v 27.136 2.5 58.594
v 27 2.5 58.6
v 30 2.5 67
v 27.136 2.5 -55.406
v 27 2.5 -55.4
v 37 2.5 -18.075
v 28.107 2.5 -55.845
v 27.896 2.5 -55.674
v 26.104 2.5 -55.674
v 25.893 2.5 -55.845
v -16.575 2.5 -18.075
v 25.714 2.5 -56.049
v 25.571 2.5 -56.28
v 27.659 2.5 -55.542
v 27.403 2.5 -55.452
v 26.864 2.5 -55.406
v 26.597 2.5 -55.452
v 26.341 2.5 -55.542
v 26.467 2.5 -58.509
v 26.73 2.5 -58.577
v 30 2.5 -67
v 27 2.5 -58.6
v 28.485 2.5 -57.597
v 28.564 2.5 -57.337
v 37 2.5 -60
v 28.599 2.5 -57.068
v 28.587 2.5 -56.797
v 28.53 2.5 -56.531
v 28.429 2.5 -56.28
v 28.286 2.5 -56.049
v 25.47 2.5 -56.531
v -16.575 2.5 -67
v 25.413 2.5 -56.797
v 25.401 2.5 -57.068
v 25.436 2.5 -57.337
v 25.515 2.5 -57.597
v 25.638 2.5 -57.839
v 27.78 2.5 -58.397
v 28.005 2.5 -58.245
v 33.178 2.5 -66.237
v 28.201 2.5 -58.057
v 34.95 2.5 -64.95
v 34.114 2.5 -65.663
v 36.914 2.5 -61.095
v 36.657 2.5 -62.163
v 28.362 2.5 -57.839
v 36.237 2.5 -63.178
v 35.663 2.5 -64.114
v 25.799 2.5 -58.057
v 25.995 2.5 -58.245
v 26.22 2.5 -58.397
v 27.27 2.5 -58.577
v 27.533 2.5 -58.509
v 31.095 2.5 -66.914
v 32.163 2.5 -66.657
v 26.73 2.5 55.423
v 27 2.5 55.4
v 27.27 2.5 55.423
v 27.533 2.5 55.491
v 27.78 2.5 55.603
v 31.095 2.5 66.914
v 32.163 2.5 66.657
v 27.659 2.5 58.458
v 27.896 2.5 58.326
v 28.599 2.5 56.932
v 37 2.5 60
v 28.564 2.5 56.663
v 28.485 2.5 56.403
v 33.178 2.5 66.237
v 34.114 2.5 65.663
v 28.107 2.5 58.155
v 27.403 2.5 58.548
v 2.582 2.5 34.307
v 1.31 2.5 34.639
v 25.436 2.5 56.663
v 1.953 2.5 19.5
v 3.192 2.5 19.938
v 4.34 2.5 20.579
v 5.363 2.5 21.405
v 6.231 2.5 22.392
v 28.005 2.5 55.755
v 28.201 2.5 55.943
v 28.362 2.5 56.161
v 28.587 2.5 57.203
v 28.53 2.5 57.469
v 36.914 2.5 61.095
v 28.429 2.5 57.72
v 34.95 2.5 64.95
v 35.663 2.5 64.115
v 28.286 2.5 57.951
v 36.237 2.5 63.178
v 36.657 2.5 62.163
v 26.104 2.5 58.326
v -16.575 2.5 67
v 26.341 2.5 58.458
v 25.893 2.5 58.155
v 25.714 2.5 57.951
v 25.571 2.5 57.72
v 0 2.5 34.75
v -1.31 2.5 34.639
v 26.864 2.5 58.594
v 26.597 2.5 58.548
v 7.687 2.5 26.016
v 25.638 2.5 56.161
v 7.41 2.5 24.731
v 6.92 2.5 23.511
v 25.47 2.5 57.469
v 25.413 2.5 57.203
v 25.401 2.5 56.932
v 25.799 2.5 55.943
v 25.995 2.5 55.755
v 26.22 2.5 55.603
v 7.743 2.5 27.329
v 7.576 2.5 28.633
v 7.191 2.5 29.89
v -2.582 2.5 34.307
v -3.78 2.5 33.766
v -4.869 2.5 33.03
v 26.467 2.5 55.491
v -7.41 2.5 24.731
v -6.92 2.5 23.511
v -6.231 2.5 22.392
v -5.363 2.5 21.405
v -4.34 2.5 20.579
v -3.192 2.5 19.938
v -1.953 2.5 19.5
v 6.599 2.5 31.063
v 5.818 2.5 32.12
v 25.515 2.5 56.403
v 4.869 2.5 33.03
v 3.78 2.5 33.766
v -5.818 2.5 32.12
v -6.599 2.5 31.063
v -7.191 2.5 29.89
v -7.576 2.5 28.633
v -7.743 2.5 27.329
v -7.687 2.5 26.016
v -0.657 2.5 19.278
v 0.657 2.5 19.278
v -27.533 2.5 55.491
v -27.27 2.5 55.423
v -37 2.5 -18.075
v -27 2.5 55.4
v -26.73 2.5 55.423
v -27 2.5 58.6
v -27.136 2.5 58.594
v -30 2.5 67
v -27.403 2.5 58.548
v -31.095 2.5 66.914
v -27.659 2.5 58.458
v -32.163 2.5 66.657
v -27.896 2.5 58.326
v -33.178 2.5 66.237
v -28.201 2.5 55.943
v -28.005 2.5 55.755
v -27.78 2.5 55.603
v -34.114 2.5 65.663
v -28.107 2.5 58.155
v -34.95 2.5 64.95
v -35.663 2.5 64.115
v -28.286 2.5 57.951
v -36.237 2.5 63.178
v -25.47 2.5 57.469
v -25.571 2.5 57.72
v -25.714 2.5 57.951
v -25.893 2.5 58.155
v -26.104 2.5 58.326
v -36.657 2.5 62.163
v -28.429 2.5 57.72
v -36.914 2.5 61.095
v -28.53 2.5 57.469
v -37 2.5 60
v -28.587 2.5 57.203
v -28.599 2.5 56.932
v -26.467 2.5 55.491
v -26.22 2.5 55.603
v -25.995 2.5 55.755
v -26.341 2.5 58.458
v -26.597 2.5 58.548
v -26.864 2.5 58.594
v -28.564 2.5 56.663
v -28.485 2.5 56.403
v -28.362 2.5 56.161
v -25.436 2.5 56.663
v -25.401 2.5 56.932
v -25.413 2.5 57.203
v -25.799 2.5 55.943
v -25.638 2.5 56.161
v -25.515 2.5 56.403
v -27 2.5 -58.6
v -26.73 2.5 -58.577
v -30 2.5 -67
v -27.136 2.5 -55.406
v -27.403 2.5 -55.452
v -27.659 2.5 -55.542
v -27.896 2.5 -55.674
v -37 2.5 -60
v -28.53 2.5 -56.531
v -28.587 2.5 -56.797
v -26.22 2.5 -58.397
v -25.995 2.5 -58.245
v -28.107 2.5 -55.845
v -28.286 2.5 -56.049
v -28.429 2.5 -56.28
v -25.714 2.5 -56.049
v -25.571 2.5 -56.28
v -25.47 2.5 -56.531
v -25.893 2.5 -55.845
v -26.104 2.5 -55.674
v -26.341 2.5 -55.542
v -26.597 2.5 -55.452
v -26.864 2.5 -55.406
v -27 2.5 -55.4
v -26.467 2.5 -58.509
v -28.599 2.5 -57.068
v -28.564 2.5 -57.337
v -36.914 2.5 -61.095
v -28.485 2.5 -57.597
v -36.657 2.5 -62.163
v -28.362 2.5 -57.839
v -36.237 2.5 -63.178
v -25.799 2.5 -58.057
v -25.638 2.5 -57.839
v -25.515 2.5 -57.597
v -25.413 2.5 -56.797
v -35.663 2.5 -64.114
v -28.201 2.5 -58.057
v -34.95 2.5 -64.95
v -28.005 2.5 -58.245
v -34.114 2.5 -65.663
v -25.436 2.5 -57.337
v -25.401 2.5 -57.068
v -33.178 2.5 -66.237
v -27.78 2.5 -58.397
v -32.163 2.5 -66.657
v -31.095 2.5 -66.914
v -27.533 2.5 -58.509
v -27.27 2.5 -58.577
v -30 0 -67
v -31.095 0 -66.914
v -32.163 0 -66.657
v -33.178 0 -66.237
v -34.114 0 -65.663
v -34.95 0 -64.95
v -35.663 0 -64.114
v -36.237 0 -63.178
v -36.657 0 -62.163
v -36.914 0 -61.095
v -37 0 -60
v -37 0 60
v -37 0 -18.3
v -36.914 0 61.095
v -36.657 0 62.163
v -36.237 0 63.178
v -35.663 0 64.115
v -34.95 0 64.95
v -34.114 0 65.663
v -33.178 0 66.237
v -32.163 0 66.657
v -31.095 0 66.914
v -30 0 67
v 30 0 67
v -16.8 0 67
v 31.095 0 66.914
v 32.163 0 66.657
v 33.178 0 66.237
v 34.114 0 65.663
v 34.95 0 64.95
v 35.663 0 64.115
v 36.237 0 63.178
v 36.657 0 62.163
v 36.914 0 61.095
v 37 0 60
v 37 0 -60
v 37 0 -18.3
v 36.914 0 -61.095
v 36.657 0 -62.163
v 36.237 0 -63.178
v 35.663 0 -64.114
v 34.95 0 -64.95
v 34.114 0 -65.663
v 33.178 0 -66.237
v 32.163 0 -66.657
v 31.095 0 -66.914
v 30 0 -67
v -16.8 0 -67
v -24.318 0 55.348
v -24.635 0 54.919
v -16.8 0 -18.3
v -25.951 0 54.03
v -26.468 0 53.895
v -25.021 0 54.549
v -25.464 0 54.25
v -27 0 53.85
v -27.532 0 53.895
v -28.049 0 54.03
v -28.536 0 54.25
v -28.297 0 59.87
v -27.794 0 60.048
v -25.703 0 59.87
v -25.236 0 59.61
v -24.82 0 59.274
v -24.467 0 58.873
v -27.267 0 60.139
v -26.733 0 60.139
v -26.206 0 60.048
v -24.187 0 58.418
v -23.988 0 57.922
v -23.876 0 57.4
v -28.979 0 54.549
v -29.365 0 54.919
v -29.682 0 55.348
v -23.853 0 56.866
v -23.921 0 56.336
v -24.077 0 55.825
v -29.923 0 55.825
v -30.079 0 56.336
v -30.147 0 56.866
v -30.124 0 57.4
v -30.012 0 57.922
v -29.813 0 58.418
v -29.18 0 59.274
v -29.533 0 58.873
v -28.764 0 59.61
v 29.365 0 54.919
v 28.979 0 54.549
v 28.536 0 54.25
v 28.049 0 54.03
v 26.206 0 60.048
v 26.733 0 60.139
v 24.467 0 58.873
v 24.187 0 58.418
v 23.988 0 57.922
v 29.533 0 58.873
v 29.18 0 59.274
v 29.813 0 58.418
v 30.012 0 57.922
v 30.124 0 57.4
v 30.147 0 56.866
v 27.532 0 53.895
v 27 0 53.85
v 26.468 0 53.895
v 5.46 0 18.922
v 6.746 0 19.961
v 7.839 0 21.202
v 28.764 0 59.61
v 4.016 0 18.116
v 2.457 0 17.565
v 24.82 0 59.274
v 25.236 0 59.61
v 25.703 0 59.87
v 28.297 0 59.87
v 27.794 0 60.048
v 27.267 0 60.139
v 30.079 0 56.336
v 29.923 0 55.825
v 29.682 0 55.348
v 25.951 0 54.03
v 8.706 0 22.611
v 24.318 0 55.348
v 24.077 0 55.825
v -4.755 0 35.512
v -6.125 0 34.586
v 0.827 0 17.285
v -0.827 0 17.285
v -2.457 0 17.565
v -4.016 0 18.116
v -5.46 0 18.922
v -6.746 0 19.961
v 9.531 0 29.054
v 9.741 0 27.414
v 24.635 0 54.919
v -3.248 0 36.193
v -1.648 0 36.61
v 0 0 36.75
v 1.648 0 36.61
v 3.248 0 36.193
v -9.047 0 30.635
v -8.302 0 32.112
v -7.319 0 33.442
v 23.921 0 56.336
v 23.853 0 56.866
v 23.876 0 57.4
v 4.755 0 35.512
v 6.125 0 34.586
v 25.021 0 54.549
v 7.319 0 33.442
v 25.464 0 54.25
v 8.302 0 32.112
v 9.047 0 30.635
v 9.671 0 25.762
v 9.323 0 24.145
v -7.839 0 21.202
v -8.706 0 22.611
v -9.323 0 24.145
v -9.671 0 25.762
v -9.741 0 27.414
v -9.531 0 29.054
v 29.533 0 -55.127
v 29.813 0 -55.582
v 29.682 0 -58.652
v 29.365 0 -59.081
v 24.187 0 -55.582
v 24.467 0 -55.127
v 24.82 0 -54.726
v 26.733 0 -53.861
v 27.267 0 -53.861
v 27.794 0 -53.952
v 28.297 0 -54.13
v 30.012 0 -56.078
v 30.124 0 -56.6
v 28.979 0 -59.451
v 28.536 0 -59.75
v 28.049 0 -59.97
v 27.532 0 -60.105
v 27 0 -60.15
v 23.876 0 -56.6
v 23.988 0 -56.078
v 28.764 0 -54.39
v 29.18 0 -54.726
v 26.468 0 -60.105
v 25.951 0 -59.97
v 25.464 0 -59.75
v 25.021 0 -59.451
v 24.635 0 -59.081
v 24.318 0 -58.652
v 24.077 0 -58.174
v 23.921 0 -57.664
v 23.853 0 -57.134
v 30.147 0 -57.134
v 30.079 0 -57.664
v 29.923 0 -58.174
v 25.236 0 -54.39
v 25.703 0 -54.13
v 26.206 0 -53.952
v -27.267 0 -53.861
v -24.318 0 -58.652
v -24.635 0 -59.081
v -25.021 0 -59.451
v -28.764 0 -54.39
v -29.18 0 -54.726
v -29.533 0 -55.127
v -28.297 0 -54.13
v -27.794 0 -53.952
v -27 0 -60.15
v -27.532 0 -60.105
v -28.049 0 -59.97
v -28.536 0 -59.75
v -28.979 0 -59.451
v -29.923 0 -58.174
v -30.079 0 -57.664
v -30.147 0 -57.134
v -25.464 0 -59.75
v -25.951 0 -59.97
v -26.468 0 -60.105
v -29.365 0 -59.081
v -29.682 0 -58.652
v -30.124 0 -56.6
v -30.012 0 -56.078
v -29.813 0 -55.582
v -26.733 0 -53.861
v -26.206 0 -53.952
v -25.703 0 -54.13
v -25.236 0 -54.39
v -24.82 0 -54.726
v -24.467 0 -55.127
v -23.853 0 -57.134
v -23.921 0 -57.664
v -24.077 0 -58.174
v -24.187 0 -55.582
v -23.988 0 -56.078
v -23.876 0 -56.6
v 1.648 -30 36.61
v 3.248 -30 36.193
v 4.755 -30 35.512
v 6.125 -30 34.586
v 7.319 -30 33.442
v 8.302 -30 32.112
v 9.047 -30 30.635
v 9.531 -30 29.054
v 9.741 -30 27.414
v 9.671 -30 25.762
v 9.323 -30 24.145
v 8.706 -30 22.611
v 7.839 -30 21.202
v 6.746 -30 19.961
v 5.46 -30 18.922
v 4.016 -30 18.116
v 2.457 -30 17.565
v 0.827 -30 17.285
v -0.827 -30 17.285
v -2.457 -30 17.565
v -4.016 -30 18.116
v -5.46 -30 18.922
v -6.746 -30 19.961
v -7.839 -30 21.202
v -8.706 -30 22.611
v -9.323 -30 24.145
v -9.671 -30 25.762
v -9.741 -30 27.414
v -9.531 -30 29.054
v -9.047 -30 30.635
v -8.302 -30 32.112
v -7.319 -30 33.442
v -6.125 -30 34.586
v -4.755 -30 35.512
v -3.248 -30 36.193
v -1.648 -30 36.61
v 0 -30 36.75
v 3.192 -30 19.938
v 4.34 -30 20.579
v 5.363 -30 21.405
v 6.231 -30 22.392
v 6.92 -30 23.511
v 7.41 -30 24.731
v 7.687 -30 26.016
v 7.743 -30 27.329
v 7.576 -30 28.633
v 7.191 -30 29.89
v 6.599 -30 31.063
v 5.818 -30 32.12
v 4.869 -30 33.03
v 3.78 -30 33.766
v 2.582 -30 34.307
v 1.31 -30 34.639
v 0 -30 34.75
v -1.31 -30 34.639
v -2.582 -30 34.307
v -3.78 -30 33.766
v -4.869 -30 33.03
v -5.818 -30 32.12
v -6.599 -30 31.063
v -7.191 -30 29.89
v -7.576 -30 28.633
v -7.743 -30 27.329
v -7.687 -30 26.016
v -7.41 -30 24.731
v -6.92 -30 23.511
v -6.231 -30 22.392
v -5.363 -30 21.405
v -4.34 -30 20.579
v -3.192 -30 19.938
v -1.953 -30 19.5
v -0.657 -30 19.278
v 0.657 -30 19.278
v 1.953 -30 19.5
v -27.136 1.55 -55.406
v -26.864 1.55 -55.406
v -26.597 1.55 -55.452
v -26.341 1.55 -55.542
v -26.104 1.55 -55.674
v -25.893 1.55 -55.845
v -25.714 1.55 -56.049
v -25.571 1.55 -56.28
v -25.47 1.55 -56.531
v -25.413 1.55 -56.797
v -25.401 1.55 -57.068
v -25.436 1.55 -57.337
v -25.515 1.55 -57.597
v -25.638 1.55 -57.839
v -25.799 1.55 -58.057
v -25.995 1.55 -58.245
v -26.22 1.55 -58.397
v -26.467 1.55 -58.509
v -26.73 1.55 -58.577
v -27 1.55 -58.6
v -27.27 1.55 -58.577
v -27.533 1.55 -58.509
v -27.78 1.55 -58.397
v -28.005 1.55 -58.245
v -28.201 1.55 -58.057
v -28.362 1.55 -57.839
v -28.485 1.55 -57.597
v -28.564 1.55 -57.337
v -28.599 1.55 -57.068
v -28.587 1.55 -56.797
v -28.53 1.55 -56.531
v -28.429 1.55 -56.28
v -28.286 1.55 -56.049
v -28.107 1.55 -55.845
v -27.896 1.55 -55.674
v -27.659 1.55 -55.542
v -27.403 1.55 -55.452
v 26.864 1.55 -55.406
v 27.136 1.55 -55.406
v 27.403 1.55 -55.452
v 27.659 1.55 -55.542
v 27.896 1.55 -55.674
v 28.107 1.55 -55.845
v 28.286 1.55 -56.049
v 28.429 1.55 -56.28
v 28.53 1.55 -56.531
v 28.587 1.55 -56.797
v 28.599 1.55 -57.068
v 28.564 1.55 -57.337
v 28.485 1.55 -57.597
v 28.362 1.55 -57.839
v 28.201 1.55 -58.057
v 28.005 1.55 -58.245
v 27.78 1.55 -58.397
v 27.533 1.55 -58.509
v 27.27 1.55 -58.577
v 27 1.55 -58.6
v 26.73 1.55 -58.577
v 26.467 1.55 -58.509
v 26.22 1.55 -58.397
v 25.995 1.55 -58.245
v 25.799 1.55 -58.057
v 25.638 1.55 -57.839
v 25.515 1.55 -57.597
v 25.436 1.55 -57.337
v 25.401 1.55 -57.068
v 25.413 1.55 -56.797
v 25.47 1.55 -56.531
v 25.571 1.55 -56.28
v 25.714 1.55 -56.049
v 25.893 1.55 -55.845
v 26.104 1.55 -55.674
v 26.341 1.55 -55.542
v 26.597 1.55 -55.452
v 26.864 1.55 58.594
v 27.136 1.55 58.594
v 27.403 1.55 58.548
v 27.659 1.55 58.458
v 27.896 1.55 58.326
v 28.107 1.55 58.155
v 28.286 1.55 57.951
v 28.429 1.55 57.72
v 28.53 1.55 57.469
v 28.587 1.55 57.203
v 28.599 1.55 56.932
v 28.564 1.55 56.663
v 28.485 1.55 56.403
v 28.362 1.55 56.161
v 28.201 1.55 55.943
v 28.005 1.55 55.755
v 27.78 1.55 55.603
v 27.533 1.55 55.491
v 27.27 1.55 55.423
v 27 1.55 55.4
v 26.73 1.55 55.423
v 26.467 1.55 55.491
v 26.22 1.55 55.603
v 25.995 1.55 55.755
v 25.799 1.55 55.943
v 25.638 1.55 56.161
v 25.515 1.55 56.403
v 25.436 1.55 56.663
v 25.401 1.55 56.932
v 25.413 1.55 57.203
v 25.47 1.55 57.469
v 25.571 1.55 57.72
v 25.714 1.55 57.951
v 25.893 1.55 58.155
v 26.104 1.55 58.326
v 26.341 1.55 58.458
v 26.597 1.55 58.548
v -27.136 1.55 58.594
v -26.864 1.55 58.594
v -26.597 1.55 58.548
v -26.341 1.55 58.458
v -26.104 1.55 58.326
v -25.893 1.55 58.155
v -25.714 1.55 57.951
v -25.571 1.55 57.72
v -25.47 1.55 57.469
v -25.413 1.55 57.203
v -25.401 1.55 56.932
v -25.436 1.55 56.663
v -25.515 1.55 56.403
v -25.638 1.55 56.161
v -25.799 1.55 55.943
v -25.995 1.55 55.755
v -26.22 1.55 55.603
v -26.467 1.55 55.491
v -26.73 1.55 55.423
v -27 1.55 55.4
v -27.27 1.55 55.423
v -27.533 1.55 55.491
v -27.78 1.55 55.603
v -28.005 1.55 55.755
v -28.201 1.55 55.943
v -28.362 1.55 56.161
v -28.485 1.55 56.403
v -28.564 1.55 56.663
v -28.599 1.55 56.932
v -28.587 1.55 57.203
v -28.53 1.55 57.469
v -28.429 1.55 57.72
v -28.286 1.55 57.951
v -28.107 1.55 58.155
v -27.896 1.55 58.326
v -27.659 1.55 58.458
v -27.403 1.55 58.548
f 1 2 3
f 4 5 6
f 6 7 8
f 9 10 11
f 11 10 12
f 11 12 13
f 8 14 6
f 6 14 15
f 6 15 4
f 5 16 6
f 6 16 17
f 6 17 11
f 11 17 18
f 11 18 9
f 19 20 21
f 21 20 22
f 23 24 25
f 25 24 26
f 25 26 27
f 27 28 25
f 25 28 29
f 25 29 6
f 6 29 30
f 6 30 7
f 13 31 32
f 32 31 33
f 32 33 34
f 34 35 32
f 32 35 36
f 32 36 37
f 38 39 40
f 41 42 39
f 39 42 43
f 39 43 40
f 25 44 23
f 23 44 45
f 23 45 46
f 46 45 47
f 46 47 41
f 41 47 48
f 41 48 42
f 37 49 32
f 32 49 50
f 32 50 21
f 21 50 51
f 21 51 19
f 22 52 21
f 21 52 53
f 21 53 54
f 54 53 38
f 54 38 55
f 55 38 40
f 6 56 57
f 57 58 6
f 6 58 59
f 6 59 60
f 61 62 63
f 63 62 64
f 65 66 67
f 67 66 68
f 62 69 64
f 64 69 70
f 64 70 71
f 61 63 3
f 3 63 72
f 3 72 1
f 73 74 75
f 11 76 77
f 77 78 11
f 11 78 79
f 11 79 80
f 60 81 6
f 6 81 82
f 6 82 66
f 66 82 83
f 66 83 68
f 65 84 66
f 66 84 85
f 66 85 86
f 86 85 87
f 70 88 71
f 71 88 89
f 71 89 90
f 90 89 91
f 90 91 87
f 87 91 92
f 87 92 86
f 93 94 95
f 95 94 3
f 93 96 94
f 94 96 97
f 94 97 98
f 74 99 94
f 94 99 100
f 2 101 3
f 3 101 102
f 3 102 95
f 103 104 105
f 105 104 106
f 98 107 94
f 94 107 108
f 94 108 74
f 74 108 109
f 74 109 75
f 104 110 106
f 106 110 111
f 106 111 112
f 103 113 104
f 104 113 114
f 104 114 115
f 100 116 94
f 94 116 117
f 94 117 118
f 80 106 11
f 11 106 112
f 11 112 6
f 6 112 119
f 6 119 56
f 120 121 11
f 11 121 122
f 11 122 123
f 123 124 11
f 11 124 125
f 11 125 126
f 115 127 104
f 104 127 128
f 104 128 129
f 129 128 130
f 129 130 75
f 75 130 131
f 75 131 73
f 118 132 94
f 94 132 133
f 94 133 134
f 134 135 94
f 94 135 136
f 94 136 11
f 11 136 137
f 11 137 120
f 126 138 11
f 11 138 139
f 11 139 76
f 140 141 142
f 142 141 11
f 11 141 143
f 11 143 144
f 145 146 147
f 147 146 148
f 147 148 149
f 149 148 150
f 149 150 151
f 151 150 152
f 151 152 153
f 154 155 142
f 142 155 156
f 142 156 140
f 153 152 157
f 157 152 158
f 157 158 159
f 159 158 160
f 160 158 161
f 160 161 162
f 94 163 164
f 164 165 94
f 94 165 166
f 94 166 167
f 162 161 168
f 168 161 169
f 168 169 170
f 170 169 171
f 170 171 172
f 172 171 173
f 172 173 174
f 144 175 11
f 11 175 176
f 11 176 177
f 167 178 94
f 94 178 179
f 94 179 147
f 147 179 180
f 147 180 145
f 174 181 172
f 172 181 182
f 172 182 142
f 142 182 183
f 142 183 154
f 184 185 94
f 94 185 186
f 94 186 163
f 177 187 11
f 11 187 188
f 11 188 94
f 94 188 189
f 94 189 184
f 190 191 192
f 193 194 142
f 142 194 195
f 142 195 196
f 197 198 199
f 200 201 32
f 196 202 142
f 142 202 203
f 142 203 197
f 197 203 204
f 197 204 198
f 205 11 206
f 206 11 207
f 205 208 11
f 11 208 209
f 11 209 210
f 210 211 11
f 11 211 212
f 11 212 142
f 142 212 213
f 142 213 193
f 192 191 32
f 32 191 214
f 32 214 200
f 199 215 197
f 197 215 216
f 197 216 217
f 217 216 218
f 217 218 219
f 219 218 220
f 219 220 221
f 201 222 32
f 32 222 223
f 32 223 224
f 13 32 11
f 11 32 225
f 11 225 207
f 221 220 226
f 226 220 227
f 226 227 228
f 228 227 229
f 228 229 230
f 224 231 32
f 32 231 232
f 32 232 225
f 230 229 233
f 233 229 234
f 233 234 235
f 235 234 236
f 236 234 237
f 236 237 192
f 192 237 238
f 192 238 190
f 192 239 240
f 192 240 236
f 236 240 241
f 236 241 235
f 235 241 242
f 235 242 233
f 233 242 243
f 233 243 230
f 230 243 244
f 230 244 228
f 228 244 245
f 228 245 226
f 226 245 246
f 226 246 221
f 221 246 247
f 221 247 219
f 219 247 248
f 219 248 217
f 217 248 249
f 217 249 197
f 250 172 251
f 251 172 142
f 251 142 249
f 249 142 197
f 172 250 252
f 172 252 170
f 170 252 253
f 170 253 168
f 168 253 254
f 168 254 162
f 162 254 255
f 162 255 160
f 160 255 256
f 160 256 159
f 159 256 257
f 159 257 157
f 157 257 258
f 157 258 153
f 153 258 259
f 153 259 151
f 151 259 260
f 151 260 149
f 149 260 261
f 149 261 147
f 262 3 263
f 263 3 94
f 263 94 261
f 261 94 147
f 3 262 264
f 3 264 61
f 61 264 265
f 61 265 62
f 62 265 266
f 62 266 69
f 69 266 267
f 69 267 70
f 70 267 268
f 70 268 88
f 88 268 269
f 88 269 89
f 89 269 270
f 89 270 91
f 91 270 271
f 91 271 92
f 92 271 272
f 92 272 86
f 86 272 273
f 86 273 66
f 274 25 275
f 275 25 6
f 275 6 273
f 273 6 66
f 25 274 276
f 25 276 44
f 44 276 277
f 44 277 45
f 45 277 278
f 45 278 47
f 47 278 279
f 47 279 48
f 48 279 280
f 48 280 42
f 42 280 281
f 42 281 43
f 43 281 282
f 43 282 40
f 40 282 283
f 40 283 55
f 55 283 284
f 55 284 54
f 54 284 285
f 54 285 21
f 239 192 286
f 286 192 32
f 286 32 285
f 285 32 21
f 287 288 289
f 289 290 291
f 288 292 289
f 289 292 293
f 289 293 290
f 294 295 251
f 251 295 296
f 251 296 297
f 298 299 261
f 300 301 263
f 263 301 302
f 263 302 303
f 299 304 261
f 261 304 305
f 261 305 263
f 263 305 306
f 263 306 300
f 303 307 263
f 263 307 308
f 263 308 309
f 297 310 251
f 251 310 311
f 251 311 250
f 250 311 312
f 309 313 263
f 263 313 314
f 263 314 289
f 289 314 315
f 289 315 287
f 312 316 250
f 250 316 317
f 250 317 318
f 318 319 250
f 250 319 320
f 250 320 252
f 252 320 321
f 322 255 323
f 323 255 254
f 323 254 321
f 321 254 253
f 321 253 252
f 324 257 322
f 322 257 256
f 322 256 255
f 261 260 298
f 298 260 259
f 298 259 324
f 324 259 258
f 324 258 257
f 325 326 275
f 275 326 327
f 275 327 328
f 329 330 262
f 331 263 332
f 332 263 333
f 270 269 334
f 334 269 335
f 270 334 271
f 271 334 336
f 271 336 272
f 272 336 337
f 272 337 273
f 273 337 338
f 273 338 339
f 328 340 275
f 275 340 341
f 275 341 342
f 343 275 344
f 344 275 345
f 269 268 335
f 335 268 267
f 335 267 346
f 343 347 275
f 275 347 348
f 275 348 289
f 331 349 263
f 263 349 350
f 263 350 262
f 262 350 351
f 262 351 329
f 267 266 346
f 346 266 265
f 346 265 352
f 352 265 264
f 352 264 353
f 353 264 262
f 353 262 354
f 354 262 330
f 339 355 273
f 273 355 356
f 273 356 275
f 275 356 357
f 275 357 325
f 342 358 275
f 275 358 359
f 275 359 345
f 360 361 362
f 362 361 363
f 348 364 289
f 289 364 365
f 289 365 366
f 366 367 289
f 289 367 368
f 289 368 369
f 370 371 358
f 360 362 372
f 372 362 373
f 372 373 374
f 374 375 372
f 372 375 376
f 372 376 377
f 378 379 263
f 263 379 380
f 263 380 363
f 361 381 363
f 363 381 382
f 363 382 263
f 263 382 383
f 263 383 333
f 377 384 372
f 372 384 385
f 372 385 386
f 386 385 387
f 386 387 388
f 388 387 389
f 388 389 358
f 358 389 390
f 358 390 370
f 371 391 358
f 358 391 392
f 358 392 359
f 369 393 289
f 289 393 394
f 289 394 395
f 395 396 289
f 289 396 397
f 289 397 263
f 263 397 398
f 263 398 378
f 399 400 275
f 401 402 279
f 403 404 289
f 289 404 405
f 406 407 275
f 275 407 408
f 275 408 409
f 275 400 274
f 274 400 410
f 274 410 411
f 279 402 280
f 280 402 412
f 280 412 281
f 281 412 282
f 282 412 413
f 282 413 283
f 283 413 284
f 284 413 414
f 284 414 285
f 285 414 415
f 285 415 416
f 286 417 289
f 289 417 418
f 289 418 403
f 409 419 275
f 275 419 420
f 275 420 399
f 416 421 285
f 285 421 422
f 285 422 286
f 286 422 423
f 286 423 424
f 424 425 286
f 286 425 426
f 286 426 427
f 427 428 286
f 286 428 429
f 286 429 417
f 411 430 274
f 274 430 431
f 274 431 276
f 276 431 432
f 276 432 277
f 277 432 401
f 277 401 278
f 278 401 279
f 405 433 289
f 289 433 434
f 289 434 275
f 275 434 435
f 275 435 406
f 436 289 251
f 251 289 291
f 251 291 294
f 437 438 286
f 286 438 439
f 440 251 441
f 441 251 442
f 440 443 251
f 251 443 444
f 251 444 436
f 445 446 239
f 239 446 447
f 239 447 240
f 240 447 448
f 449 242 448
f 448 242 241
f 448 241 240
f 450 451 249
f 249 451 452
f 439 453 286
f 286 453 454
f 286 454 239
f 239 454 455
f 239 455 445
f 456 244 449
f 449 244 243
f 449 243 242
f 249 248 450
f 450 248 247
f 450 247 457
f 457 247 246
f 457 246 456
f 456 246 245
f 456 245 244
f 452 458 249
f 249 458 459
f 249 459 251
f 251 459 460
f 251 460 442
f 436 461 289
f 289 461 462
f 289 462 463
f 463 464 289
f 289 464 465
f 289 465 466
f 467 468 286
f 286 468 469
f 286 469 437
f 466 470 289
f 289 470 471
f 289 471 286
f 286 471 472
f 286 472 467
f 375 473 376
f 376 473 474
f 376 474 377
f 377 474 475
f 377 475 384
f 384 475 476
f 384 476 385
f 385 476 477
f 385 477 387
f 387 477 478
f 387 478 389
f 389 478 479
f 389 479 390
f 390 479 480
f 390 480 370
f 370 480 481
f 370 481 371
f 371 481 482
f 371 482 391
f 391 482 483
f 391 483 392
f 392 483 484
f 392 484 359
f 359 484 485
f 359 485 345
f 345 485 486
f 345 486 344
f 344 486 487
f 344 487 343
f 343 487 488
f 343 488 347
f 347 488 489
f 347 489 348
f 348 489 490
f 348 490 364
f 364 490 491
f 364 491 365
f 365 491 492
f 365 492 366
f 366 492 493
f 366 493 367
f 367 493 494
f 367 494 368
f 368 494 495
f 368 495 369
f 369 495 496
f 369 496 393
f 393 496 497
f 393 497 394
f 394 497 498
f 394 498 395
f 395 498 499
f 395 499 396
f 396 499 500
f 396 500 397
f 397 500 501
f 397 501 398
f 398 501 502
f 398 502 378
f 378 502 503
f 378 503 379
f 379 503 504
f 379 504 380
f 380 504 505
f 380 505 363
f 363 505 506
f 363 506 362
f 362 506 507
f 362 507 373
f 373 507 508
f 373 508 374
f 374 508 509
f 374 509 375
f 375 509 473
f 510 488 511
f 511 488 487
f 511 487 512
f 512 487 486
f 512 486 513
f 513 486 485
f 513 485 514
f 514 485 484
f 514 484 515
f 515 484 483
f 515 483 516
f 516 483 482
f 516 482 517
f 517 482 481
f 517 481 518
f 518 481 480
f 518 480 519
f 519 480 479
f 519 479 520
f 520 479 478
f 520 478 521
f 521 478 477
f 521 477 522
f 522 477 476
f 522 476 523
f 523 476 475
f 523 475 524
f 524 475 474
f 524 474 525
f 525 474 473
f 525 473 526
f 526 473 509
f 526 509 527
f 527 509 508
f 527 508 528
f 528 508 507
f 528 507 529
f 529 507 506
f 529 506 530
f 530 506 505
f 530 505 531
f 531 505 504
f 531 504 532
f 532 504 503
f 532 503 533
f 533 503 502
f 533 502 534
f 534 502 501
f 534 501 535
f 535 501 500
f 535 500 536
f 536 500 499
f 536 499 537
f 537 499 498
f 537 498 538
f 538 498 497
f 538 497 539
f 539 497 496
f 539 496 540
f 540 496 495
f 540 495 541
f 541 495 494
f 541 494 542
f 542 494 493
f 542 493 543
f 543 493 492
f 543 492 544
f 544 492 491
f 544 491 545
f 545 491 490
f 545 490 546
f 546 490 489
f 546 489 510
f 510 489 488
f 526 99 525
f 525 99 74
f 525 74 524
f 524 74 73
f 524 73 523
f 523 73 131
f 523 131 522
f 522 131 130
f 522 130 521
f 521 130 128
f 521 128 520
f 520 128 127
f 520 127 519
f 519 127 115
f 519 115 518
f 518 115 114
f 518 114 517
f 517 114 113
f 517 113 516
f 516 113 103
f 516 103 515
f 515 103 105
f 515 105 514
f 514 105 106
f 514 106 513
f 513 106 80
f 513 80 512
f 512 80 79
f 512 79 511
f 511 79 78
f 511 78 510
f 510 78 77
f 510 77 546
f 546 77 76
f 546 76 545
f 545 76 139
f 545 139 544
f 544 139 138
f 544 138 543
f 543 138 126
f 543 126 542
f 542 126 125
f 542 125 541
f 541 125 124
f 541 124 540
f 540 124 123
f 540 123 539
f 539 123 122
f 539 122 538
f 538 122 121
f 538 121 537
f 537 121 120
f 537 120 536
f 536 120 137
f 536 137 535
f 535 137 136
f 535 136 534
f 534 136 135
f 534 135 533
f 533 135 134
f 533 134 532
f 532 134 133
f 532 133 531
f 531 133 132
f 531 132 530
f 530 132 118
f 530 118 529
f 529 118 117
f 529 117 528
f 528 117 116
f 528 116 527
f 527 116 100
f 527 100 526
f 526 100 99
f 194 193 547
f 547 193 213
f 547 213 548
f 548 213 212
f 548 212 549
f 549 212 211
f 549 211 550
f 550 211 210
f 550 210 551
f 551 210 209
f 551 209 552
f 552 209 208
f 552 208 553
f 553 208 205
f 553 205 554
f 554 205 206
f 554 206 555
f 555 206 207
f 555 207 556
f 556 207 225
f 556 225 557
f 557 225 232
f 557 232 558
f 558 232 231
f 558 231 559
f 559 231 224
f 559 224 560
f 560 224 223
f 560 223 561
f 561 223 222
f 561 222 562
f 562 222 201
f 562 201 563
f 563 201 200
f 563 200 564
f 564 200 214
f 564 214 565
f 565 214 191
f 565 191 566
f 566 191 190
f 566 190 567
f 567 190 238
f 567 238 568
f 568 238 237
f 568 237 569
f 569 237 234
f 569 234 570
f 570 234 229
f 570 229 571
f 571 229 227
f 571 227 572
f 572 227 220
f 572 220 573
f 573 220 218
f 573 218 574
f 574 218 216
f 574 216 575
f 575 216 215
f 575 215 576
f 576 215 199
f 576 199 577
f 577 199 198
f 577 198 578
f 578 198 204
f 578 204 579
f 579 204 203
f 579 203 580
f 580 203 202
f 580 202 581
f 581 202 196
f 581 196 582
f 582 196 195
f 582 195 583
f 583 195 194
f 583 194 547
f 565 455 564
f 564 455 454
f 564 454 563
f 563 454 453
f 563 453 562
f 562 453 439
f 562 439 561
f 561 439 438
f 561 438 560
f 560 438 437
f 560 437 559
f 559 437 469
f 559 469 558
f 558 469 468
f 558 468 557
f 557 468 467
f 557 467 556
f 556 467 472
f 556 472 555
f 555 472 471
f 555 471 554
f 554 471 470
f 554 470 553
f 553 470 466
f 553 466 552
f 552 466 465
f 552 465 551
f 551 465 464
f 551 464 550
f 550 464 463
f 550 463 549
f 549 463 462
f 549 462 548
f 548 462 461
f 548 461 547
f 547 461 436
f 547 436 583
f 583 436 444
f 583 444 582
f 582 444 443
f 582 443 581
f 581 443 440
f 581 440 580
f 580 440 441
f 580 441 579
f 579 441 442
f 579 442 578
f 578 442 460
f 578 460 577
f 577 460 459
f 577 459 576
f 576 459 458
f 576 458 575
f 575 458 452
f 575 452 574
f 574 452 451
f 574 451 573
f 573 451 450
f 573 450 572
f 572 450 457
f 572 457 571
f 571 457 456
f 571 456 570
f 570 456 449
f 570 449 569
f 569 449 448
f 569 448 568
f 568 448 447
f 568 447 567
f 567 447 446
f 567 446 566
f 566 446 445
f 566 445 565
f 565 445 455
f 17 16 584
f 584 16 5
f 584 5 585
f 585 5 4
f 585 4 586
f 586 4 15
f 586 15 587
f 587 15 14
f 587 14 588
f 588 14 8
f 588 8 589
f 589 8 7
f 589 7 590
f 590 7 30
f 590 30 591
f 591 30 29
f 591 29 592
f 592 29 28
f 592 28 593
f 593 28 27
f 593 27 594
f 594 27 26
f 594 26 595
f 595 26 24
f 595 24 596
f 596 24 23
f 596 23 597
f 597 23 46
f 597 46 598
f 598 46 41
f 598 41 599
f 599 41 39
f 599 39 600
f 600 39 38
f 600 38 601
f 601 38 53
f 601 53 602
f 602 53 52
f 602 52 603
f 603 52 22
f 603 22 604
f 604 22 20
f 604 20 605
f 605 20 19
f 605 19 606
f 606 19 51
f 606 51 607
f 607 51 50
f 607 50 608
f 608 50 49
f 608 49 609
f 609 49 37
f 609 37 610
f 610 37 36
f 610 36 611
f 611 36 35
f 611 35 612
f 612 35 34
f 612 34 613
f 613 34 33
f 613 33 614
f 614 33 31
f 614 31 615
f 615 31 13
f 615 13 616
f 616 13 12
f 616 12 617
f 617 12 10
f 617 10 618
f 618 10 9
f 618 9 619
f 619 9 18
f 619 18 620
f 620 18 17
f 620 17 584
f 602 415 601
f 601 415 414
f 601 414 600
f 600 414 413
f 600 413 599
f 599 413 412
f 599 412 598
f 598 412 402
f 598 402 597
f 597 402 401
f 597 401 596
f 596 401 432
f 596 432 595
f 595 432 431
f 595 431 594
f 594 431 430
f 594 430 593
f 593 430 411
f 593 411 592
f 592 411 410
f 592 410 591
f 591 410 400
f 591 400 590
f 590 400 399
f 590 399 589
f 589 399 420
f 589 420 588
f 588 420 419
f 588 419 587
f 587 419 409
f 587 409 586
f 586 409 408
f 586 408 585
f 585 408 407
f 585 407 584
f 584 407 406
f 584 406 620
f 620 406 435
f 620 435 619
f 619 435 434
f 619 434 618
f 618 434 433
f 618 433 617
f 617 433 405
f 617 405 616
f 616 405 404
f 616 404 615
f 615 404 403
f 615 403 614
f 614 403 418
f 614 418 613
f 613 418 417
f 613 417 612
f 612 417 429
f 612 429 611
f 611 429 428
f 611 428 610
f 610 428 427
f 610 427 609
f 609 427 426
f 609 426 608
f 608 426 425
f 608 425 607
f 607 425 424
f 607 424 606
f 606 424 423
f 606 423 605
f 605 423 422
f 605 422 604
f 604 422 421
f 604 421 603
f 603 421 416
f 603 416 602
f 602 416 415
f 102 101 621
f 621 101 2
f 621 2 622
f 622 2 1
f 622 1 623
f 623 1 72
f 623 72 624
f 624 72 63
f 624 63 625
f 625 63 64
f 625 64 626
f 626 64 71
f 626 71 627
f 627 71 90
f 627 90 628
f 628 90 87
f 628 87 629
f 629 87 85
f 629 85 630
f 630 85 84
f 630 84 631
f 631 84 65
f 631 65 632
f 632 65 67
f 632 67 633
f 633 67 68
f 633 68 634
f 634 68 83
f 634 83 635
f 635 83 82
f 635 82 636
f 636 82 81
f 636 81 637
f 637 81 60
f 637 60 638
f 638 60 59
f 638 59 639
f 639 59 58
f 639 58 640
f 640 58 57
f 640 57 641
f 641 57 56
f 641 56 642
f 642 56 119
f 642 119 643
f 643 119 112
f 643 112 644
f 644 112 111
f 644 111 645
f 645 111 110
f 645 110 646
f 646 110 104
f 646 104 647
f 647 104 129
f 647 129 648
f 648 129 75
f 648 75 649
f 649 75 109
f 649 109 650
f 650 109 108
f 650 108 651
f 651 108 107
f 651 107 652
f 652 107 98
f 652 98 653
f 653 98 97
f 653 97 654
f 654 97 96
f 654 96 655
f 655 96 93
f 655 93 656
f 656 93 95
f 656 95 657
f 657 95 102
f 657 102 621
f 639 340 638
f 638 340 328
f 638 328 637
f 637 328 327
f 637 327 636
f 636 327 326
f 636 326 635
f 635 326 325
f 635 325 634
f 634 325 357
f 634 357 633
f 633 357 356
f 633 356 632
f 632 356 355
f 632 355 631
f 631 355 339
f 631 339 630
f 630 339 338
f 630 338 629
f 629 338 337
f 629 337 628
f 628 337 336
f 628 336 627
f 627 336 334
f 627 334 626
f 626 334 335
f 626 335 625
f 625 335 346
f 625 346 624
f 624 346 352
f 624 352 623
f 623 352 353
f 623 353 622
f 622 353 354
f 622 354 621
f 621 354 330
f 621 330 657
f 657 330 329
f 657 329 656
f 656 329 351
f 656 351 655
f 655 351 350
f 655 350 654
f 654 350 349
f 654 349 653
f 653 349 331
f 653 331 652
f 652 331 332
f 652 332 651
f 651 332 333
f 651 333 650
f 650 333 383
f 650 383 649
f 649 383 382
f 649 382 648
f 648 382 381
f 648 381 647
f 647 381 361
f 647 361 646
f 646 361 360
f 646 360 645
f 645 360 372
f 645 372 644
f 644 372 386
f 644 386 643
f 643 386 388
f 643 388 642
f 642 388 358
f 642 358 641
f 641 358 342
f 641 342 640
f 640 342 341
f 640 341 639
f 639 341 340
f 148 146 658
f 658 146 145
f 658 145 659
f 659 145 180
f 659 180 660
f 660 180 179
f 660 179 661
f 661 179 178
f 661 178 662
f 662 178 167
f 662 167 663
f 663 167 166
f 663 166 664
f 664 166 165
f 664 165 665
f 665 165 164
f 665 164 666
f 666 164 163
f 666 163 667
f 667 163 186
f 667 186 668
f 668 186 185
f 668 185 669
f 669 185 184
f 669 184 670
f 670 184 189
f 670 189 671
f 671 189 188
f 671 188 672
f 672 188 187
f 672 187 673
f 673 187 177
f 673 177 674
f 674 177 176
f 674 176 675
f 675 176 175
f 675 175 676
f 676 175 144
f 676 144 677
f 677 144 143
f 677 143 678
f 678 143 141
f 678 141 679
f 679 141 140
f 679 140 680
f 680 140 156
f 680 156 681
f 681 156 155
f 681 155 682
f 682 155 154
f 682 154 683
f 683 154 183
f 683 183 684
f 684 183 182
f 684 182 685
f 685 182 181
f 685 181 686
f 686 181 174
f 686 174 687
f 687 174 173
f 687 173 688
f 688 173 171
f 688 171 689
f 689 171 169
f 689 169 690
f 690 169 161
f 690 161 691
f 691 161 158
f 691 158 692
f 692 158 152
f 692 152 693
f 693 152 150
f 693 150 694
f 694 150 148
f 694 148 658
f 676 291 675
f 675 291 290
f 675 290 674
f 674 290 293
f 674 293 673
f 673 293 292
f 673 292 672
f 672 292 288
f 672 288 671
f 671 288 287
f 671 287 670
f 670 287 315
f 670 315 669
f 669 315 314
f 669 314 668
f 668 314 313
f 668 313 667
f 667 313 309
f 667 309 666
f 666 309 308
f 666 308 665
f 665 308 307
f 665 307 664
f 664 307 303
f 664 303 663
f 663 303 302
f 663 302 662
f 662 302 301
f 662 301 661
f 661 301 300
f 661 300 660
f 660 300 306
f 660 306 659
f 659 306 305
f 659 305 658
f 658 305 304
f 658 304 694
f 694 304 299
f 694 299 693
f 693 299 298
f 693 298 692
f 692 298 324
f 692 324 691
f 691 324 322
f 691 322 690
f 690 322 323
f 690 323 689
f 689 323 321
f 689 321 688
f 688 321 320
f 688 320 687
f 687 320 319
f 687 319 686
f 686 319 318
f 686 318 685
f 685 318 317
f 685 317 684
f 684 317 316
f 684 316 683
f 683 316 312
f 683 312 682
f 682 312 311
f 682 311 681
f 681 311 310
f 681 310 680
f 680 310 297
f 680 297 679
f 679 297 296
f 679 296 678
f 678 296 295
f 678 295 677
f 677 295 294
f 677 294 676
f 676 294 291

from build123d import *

# Parameters (mm, degrees)
BOSS_EXTRUDE1_DEPTH                                 = 2.5
SKETCH1_4_R                                         = 9.75
SKETCH1_4_R_2                                       = 7.75
BOSS_EXTRUDE3_DEPTH                                 = 30
CUT_EXTRUDE1_START                                  = 10
SKETCH1_5_R                                         = 7.75
CUT_EXTRUDE1_DEPTH                                  = 10
CSK_FOR_M3_COUNTERSUNK_FLAT_HEAD_SCREW1_D           = 3.2
CSK_FOR_M3_COUNTERSUNK_FLAT_HEAD_SCREW1_DEPTH       = 2.5
CSK_FOR_M3_COUNTERSUNK_FLAT_HEAD_SCREW1_CSINK_D     = 6.3
CSK_FOR_M3_COUNTERSUNK_FLAT_HEAD_SCREW1_CSINK_ANGLE = 90
CSK_FOR_M3_COUNTERSUNK_FLAT_HEAD_SCREW1_TIP         = 0.96137699


with BuildPart() as part:
    # Sketch1 → Boss-Extrude1 (new body)
    with BuildSketch(Plane(origin=(0, 0, 0), x_dir=(1, 0, 0), z_dir=(0, 1, 0))):
        with BuildLine():
            Line((-37, 60), (-37, -60))
            ThreePointArc((-37, -60), (-34.949747468, -64.949747468), (-30, -67))
            Line((-30, -67), (30, -67))
            ThreePointArc((30, -67), (34.949747468, -64.949747468), (37, -60))
            Line((37, -60), (37, 60))
            ThreePointArc((37, 60), (34.949747468, 64.949747468), (30, 67))
            Line((30, 67), (-30, 67))
            ThreePointArc((-30, 67), (-34.949747468, 64.949747468), (-37, 60))
        make_face()
    extrude(amount=BOSS_EXTRUDE1_DEPTH)

    # Sketch1<4> → Boss-Extrude3 (add)
    with BuildSketch(Plane(origin=(0, 0, 0), x_dir=(1, 0, 0), z_dir=(0, 1, 0))):
        with Locations((0, -27)):
            Circle(SKETCH1_4_R)
        with Locations((0, -27)):
            Circle(SKETCH1_4_R_2, mode=Mode.SUBTRACT)
    extrude(amount=-BOSS_EXTRUDE3_DEPTH)

    # Sketch1<5> → Cut-Extrude1 (cut)
    with BuildSketch(Plane(origin=(0, 0, 0), x_dir=(1, 0, 0), z_dir=(0, 1, 0)).offset(CUT_EXTRUDE1_START)):
        with Locations((0, -27)):
            Circle(SKETCH1_5_R)
    extrude(amount=-CUT_EXTRUDE1_DEPTH, mode=Mode.SUBTRACT)

    # CSK for M3 Countersunk Flat Head Screw1
    with Locations(Plane(origin=(0, 0, 0), x_dir=(-1, 0, 0), z_dir=(0, -1, 0))):
        with Locations((27, -57), (-27, -57), (-27, 57), (27, 57)):
            CounterSinkHole(CSK_FOR_M3_COUNTERSUNK_FLAT_HEAD_SCREW1_D / 2, CSK_FOR_M3_COUNTERSUNK_FLAT_HEAD_SCREW1_CSINK_D / 2, depth=CSK_FOR_M3_COUNTERSUNK_FLAT_HEAD_SCREW1_DEPTH, counter_sink_angle=CSK_FOR_M3_COUNTERSUNK_FLAT_HEAD_SCREW1_CSINK_ANGLE)
            with Locations((0, 0, -(CSK_FOR_M3_COUNTERSUNK_FLAT_HEAD_SCREW1_DEPTH + CSK_FOR_M3_COUNTERSUNK_FLAT_HEAD_SCREW1_TIP / 2))):  # 118° drill point
                Cone(0, CSK_FOR_M3_COUNTERSUNK_FLAT_HEAD_SCREW1_D / 2, CSK_FOR_M3_COUNTERSUNK_FLAT_HEAD_SCREW1_TIP, mode=Mode.SUBTRACT)


solid = part.part
